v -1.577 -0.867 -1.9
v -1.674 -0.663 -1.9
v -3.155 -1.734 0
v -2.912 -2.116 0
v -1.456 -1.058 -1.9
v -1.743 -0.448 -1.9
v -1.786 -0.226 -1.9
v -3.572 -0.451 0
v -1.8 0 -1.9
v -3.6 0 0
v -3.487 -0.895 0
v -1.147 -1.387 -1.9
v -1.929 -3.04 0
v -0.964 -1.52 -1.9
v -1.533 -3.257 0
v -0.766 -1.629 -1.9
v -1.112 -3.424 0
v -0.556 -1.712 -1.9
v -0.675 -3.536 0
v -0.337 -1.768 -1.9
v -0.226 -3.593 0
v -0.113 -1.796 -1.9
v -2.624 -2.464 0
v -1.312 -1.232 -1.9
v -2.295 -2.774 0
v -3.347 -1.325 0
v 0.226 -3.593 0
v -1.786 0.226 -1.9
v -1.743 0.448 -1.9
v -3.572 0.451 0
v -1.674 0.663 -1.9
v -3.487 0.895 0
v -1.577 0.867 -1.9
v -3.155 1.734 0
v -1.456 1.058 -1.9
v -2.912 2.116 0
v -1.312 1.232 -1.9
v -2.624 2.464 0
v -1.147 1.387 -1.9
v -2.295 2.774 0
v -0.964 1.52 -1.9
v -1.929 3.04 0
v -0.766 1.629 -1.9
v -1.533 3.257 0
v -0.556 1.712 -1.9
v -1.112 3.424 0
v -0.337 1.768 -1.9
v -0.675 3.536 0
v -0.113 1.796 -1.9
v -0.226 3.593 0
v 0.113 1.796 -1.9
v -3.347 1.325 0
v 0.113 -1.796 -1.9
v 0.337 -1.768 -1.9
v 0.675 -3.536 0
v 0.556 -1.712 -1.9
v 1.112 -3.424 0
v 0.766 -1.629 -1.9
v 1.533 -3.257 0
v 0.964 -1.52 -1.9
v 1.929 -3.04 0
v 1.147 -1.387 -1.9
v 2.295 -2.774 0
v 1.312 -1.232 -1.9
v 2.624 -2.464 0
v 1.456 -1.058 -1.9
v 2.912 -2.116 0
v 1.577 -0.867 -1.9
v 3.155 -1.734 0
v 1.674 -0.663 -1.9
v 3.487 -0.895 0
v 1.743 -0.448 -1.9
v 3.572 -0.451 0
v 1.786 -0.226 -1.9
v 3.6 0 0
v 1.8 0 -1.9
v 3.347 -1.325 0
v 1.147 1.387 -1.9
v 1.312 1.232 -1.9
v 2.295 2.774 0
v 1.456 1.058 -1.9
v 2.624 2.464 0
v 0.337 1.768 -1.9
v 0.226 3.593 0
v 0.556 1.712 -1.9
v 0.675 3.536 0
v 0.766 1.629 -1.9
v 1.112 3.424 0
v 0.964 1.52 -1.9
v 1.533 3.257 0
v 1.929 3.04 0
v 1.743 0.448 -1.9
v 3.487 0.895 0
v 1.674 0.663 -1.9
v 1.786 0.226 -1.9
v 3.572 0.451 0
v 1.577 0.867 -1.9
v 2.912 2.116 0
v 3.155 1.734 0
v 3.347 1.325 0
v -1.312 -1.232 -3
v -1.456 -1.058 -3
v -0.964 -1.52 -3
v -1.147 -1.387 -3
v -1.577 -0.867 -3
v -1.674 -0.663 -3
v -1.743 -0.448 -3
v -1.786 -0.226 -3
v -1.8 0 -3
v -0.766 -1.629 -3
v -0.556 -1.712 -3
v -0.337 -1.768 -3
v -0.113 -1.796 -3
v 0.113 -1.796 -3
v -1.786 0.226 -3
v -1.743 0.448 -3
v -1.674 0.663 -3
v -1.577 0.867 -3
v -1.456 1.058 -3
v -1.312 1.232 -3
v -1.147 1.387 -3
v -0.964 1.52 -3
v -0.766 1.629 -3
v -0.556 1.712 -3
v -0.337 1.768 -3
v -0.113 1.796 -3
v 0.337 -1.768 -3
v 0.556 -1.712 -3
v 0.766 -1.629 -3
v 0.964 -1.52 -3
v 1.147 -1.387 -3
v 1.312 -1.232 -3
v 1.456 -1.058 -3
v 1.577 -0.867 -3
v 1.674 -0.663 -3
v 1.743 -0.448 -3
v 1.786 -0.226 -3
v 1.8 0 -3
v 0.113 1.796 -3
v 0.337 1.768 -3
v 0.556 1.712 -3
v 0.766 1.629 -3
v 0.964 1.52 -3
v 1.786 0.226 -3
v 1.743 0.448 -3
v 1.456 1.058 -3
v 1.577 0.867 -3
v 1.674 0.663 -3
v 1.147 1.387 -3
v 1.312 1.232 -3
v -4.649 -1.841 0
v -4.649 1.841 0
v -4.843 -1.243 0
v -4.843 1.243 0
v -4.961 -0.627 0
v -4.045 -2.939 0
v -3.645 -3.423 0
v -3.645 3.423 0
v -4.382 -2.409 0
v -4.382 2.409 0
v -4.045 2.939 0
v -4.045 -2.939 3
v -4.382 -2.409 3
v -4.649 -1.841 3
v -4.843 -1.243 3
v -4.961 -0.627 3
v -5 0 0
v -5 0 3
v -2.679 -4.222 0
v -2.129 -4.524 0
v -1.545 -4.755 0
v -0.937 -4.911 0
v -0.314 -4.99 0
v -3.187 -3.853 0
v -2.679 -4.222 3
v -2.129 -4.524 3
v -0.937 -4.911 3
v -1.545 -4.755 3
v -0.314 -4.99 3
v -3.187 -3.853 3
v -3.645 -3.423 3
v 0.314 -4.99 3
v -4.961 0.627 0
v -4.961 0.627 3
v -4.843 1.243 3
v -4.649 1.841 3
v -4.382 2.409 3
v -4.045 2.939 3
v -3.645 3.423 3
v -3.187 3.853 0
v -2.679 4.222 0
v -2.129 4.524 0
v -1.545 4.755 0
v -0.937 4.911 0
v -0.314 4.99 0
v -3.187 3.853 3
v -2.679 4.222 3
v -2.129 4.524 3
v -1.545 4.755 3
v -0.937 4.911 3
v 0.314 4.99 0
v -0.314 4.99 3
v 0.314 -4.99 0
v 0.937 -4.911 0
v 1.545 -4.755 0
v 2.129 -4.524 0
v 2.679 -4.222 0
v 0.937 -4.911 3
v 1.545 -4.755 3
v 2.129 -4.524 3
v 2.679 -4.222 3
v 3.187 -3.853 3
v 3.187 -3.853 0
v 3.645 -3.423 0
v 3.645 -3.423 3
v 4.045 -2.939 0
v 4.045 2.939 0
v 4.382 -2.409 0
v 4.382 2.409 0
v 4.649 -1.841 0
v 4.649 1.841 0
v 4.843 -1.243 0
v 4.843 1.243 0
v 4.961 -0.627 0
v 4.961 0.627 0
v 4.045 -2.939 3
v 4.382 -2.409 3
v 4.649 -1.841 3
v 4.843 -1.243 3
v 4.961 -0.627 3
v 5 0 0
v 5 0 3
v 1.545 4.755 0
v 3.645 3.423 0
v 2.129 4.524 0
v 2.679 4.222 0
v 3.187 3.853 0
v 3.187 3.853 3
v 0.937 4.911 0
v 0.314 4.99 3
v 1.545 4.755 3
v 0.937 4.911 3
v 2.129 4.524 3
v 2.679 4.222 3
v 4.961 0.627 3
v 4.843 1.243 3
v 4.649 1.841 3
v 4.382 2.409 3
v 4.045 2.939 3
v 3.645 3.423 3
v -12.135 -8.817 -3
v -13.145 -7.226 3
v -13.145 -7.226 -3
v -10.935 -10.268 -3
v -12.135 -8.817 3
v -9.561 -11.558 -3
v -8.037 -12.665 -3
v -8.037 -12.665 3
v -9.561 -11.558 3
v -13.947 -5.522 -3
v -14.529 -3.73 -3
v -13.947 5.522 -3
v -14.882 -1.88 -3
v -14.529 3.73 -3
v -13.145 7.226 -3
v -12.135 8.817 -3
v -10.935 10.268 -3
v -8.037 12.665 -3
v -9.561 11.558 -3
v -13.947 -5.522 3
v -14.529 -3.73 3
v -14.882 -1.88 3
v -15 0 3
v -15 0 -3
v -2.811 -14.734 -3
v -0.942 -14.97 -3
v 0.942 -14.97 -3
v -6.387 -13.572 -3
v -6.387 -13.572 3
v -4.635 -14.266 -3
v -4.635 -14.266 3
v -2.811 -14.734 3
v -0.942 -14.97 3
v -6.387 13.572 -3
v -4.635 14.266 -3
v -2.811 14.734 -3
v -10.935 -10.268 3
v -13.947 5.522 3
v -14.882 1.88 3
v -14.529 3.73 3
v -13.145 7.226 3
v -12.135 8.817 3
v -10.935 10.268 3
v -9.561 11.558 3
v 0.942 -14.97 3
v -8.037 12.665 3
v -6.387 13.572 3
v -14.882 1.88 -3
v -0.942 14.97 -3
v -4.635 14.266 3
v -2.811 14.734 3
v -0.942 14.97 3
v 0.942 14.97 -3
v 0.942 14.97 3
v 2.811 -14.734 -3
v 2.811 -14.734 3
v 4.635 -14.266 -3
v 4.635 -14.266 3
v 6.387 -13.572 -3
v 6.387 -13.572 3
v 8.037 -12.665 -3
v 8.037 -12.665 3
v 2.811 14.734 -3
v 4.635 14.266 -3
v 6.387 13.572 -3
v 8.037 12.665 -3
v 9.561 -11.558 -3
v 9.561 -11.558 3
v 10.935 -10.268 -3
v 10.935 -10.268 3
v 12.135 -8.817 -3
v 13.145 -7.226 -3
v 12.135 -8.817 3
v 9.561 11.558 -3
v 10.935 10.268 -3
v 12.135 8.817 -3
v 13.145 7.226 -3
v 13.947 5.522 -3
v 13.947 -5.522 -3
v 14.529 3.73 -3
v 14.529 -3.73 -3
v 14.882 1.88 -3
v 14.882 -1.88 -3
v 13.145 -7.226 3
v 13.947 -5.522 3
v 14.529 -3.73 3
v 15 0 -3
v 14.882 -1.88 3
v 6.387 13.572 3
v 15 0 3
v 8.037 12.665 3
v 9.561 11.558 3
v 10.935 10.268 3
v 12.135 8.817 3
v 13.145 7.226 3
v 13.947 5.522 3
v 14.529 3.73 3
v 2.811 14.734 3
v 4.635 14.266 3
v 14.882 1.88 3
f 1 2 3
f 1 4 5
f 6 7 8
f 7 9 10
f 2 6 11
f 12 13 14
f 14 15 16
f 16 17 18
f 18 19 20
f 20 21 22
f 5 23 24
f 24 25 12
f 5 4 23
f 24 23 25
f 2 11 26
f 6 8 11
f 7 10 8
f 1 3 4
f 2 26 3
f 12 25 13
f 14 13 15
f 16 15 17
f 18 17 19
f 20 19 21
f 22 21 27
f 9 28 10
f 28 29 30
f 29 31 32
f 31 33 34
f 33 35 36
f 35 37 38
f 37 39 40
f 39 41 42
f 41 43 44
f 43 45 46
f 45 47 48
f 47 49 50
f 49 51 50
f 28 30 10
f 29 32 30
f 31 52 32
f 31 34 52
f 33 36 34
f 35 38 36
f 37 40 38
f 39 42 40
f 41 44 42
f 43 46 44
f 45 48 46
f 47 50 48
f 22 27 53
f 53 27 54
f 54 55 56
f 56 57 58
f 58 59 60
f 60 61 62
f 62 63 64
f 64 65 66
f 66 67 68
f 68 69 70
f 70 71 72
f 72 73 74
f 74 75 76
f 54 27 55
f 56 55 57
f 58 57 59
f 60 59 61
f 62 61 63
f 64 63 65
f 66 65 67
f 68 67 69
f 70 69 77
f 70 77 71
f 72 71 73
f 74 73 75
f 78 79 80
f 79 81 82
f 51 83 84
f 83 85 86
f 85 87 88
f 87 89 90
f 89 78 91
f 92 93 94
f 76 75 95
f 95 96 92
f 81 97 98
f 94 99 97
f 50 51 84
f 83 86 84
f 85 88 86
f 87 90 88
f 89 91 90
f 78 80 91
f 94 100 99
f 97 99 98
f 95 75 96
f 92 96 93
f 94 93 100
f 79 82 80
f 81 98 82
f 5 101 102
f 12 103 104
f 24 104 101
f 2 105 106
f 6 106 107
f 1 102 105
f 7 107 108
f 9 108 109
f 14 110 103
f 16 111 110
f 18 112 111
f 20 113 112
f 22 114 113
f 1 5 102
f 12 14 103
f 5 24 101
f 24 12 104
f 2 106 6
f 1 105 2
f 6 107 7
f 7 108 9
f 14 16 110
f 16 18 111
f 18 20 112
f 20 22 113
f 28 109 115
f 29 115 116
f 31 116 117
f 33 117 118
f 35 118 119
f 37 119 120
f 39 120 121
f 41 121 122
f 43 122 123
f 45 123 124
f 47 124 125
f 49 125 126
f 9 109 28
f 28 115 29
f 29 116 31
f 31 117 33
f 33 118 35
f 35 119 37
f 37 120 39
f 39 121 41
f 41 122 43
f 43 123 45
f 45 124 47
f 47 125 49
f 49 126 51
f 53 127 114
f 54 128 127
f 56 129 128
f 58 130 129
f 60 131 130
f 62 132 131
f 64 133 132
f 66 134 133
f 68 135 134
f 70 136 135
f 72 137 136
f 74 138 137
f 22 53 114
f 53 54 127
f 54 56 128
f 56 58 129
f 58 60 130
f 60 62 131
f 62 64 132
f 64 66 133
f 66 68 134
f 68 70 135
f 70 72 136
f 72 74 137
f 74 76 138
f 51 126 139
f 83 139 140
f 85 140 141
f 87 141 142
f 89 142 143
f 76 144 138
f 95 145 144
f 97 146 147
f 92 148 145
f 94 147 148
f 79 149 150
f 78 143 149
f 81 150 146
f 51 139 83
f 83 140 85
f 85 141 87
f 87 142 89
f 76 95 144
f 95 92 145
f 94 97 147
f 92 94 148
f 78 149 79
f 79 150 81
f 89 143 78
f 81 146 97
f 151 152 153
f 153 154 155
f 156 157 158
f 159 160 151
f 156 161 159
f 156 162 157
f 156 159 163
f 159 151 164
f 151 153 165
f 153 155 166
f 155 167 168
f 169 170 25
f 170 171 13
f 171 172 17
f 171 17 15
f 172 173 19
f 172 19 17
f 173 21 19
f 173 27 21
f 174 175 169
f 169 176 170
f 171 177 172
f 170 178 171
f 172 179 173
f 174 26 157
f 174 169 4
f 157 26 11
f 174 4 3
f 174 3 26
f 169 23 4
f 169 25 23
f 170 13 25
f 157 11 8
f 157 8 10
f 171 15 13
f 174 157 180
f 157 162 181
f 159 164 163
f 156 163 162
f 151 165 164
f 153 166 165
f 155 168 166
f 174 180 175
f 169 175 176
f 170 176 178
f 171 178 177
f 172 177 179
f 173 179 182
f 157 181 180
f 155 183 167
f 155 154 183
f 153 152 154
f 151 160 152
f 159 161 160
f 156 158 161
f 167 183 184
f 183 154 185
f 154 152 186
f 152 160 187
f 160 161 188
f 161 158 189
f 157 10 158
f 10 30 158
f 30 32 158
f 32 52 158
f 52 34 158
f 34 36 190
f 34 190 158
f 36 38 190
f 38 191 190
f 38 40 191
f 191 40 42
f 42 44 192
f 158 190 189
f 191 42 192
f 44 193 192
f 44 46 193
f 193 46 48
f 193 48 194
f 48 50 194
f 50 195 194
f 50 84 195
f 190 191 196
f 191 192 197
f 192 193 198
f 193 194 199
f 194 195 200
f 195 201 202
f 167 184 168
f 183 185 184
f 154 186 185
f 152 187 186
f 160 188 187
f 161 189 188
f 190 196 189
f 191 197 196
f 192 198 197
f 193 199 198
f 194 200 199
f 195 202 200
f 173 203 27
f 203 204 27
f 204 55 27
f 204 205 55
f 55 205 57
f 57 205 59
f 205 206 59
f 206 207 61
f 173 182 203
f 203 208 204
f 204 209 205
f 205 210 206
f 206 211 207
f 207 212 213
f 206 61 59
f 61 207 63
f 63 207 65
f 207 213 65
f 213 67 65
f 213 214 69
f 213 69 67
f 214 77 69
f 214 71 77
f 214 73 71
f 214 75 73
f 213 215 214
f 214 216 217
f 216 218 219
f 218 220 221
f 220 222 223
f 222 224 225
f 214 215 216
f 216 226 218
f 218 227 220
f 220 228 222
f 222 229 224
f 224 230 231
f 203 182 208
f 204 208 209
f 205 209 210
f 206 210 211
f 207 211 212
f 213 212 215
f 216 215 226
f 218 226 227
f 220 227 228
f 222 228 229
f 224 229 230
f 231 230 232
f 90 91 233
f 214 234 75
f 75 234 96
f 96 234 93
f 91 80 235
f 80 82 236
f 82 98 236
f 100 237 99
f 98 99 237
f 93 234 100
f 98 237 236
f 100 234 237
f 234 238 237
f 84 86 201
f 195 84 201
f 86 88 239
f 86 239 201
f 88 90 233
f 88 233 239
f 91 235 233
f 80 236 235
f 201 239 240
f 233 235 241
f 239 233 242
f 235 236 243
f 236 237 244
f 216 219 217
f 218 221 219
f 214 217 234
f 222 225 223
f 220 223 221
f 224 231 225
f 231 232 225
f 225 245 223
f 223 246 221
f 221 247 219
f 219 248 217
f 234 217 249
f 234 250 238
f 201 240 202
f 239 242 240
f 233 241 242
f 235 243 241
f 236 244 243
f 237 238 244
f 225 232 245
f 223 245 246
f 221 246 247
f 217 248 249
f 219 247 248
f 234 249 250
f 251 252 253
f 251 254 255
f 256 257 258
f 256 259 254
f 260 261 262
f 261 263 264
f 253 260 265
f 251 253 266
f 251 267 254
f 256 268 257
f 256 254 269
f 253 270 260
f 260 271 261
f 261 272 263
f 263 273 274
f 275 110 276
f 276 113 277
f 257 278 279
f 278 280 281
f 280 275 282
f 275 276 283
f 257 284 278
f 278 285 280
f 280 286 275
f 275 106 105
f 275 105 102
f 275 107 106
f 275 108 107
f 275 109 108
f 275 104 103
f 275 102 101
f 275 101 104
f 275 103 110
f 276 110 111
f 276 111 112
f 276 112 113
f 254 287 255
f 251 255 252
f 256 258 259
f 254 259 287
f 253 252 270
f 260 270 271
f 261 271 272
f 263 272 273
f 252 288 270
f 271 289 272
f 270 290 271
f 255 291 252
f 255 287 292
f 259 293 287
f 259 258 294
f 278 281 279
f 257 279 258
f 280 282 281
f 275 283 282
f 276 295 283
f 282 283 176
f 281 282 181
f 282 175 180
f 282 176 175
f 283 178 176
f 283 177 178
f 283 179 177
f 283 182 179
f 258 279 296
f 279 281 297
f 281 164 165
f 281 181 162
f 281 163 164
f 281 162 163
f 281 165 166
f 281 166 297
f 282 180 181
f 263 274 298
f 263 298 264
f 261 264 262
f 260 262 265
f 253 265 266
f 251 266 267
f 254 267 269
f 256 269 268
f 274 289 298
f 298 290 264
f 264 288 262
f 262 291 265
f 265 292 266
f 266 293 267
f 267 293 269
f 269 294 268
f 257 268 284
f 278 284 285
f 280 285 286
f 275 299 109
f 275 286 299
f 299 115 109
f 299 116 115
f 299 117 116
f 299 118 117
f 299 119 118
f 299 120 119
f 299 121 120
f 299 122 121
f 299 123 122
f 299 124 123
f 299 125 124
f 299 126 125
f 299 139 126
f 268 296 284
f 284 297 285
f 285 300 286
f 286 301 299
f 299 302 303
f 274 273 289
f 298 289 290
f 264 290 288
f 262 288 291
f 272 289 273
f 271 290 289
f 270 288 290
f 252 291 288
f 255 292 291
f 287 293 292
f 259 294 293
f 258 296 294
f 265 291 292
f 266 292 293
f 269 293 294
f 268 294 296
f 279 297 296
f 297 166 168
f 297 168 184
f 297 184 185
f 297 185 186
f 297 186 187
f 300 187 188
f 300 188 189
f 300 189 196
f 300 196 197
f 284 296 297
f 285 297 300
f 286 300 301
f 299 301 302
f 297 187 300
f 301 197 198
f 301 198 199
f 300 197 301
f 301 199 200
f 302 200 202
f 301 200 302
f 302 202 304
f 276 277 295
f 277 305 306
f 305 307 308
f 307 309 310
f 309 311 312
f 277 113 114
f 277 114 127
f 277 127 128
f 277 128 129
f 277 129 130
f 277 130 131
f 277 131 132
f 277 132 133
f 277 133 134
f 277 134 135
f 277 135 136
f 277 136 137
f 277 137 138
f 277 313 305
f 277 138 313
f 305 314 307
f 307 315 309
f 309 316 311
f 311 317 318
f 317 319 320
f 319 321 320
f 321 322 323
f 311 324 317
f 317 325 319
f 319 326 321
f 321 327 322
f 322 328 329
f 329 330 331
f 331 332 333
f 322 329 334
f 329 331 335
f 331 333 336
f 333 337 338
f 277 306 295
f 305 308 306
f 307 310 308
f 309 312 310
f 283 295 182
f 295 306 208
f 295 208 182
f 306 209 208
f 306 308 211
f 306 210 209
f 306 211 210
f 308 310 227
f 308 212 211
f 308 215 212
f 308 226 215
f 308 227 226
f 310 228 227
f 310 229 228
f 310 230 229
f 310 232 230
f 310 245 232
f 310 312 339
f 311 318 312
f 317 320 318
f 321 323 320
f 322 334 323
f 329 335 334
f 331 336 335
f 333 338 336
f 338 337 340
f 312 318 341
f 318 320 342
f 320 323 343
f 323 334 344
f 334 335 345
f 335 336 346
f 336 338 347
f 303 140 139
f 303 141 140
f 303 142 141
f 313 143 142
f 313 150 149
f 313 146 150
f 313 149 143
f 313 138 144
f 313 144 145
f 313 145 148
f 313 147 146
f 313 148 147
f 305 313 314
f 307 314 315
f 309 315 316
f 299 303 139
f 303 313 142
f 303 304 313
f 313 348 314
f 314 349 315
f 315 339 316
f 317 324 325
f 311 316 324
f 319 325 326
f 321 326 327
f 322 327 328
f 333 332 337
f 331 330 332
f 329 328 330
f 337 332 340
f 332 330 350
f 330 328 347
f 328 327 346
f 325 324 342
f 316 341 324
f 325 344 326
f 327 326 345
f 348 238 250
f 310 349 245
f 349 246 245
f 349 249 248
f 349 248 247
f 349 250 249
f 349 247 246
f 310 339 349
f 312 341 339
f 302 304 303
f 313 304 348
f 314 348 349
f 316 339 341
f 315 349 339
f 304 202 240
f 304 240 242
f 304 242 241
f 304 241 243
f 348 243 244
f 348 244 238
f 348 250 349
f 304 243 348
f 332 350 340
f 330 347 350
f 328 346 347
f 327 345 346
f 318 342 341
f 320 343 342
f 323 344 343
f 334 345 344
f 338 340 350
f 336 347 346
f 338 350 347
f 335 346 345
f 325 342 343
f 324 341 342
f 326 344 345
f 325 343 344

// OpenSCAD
$fn = 50;

difference() {
	union() {
		translate(v = [0, 0, -3.0]) {
			cylinder(h = 6, r = 15.0);
		}
	}
	union() {
		translate(v = [0, 0, 0]) {
			rotate(a = [0, 0, 0]) {
				difference() {
					union() {
						translate(v = [0, 0, -6.0]) {
							cylinder(h = 6, r = 1.5);
						}
						translate(v = [0, 0, -1.9]) {
							cylinder(h = 1.9, r1 = 1.8, r2 = 3.6);
						}
						translate(v = [0, 0, -6.0]) {
							cylinder(h = 6, r = 1.8);
						}
						translate(v = [0, 0, -6.0]) {
							cylinder(h = 6, r = 1.5);
						}
					}
					union();
				}
			}
		}
		#cylinder(h = 3, r = 5.0);
	}
}
